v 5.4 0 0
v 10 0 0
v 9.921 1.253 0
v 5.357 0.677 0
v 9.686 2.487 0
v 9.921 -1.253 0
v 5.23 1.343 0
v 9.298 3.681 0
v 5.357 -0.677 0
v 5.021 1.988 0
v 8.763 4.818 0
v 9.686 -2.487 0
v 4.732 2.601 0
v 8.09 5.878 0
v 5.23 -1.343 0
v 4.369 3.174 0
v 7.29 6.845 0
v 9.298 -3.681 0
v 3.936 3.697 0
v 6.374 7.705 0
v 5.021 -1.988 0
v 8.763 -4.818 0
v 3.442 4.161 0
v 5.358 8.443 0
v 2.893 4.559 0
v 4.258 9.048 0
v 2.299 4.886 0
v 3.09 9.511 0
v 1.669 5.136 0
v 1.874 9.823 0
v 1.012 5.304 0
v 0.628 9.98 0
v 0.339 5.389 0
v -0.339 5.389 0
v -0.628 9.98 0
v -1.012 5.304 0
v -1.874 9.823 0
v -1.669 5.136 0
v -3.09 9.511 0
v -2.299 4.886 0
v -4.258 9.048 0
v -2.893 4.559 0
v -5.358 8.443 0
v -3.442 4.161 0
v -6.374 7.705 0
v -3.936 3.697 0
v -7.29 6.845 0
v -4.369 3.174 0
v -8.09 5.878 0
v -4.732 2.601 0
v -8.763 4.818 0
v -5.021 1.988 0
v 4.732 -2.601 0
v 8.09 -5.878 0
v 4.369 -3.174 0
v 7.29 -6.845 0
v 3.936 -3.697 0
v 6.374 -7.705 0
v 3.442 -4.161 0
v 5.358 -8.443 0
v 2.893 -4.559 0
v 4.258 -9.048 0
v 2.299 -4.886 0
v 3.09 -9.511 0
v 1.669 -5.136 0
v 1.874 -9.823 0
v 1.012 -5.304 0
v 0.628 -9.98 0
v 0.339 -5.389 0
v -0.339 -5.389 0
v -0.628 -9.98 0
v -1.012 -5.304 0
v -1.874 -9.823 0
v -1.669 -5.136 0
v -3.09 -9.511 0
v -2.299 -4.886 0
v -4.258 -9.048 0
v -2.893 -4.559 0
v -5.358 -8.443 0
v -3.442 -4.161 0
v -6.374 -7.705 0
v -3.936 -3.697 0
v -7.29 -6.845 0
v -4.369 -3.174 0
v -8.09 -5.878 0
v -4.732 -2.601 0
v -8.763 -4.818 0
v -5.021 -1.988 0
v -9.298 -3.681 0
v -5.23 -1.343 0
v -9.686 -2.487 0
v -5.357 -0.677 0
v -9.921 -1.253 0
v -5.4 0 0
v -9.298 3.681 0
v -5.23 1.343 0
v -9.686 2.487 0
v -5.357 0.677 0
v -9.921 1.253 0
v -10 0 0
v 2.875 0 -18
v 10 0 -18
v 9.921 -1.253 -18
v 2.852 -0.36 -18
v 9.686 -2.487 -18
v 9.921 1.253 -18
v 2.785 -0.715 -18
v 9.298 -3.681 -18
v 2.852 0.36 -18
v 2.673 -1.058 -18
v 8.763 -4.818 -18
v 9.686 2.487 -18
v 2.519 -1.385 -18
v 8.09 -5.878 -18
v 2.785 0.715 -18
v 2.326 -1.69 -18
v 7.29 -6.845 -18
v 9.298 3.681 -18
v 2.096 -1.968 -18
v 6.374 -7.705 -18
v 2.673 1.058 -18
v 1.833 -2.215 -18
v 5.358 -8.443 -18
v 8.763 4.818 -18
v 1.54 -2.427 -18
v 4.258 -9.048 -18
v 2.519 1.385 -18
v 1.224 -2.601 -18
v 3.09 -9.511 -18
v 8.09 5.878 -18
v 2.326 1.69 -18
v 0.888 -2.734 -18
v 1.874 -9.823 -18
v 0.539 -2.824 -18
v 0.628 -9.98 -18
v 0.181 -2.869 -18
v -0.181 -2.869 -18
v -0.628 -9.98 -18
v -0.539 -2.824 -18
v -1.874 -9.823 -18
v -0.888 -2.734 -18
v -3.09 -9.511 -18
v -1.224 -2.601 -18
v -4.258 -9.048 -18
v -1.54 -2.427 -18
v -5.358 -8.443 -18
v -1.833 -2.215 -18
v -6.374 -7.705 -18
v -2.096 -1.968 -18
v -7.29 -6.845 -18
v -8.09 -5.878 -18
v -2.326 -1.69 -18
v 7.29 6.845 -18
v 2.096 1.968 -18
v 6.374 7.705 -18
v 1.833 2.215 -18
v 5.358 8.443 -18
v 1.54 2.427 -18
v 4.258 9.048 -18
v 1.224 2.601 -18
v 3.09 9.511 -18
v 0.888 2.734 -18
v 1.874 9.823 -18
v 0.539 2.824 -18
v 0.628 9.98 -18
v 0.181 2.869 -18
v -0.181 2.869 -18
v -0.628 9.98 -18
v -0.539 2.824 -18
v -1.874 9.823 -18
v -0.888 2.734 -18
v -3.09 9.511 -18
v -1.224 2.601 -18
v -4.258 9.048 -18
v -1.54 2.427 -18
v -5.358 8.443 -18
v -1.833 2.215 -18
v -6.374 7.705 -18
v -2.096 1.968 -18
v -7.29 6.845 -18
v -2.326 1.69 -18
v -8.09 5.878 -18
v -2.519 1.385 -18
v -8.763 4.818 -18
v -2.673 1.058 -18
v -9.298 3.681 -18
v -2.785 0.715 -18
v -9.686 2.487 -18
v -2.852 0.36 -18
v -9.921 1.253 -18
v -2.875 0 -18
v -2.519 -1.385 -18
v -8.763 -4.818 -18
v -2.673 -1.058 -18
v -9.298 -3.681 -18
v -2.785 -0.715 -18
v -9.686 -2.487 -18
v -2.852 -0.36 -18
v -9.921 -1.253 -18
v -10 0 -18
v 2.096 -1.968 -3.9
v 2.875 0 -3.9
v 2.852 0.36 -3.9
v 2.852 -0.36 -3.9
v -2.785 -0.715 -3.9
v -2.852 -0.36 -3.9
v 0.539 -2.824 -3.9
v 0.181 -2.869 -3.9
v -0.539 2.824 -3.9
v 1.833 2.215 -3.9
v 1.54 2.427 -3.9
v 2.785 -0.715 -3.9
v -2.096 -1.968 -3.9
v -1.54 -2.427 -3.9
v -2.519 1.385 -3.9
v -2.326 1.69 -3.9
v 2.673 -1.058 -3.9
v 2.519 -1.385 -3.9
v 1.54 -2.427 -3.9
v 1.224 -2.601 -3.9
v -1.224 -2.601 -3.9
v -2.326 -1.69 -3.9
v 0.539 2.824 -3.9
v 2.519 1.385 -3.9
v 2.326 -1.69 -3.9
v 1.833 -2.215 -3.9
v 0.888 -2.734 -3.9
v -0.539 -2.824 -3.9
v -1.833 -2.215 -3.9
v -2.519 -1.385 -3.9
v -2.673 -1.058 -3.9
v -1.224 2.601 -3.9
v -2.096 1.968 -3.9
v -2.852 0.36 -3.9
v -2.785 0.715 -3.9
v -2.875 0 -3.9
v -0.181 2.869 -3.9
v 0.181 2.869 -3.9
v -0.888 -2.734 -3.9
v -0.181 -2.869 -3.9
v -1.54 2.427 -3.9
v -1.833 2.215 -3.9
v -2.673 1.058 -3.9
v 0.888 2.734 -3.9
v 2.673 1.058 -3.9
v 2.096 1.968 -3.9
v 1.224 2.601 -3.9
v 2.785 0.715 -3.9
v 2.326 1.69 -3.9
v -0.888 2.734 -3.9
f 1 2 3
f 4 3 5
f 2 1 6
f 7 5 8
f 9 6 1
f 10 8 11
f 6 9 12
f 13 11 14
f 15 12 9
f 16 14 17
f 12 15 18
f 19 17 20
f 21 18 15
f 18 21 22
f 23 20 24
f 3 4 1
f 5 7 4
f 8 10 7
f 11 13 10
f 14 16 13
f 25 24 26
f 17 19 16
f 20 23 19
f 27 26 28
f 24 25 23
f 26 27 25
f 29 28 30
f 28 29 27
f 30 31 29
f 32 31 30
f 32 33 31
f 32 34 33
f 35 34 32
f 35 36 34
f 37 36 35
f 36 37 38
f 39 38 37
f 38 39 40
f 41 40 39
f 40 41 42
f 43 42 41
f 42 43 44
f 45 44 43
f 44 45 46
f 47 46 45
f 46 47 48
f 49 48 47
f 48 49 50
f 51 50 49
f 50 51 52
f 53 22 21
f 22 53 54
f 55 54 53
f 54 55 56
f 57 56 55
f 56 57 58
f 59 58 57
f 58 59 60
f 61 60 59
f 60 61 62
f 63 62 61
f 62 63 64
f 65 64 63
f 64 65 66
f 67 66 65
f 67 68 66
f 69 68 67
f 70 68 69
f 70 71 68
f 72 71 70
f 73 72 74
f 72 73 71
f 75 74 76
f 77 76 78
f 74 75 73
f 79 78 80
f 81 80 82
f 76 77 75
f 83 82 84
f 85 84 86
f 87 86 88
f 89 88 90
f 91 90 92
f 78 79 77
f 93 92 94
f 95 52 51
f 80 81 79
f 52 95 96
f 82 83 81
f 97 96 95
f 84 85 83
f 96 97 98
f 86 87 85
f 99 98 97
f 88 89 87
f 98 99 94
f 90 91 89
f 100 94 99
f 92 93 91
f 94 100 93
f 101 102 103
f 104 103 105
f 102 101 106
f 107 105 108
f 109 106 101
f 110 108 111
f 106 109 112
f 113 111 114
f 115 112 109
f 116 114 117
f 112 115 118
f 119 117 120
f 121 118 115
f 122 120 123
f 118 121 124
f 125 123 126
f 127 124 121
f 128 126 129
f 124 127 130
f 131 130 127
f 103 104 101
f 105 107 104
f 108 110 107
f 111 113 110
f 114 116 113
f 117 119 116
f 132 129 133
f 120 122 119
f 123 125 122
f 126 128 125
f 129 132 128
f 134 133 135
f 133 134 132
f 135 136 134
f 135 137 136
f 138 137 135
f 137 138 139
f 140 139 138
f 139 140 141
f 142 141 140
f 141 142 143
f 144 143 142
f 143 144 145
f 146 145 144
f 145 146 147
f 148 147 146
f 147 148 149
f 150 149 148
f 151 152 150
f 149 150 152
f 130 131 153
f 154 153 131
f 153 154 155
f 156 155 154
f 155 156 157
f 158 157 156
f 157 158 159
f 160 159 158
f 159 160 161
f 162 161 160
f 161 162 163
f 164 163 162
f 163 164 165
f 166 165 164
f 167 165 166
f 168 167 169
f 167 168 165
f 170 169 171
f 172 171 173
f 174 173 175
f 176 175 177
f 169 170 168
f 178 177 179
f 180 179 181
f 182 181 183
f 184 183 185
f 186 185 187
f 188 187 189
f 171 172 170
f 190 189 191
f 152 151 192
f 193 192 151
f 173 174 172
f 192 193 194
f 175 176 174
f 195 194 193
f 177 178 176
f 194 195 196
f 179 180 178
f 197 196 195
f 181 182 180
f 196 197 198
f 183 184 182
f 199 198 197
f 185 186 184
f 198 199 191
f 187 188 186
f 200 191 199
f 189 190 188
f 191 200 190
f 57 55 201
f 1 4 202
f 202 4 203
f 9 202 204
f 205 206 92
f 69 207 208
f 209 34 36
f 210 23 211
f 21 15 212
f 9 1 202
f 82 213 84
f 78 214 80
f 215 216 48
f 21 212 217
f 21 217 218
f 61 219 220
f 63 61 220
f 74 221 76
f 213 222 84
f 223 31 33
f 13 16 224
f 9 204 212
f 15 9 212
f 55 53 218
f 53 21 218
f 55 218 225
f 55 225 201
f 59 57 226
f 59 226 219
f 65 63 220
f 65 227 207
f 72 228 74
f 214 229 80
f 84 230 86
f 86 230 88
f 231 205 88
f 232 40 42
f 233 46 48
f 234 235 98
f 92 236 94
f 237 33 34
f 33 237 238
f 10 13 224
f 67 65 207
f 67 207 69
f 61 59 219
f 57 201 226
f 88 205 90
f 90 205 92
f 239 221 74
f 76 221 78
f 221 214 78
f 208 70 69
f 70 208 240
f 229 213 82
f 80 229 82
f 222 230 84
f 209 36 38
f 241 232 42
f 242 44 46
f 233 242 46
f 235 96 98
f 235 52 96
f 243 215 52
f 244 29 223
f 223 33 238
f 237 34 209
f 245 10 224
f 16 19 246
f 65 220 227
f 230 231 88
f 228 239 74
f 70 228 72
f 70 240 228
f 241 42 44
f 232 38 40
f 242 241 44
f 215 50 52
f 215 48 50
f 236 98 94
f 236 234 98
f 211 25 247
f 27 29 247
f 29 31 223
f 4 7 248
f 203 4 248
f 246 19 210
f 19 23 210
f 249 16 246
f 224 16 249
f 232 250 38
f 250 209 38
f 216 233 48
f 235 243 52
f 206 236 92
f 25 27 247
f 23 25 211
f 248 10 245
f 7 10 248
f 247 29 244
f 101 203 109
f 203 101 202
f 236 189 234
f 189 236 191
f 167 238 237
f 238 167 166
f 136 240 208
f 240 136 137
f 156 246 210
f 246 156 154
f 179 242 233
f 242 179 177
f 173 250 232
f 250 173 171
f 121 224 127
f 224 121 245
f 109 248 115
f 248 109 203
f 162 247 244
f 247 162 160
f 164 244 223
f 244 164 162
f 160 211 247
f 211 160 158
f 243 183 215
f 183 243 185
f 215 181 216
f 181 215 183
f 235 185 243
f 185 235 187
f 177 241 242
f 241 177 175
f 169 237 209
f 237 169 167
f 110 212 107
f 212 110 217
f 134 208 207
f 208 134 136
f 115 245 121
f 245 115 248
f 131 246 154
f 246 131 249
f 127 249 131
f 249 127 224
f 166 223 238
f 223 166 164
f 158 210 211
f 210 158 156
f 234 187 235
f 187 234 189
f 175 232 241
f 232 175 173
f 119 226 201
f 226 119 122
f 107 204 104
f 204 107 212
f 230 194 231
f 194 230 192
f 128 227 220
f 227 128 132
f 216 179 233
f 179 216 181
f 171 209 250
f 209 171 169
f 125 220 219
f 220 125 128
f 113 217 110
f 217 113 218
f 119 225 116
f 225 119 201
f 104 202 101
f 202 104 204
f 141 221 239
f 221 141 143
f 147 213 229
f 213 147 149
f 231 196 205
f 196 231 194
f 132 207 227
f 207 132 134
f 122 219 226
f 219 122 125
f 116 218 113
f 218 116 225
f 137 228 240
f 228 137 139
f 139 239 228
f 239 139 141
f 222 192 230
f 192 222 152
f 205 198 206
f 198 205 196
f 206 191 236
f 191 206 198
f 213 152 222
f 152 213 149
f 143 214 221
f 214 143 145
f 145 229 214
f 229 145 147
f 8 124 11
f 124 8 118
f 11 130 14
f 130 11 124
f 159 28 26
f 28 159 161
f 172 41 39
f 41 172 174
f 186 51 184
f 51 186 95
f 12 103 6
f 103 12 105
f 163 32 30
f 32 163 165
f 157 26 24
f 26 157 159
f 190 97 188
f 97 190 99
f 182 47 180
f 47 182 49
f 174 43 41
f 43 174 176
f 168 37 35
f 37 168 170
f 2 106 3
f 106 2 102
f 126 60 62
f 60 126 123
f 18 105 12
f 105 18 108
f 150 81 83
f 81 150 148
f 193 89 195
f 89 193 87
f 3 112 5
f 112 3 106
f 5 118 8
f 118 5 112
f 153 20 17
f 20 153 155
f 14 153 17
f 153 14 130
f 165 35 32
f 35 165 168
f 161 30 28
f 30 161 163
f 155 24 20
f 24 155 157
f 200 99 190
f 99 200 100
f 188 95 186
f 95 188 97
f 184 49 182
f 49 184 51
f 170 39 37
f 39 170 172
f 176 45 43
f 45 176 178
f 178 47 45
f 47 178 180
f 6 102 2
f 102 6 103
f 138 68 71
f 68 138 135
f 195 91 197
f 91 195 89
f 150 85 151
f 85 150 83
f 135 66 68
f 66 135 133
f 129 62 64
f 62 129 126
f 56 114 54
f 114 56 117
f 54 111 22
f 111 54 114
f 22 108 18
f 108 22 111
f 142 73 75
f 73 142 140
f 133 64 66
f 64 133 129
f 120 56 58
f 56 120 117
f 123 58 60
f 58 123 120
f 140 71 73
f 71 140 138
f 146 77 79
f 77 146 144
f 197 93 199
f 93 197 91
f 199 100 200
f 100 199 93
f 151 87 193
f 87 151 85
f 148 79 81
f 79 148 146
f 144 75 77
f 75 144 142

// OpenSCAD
$fn = 50;


difference() {
	union() {
		translate(v = [0, 0, -18.0000000000]) {
			cylinder(h = 18, r = 10.0000000000);
		}
	}
	union() {
		translate(v = [0, 0, 0]) {
			rotate(a = [0, 0, 0]) {
				difference() {
					union() {
						#translate(v = [0, 0, -18.0000000000]) {
							cylinder(h = 18, r = 2.6000000000);
						}
						#translate(v = [0, 0, -3.9000000000]) {
							cylinder(h = 3.9000000000, r1 = 2.8750000000, r2 = 5.4000000000);
						}
						#translate(v = [0, 0, -18.0000000000]) {
							cylinder(h = 18, r = 2.8750000000);
						}
						#translate(v = [0, 0, -18.0000000000]) {
							cylinder(h = 18, r = 2.6000000000);
						}
					}
					union();
				}
			}
		}
	}
}
